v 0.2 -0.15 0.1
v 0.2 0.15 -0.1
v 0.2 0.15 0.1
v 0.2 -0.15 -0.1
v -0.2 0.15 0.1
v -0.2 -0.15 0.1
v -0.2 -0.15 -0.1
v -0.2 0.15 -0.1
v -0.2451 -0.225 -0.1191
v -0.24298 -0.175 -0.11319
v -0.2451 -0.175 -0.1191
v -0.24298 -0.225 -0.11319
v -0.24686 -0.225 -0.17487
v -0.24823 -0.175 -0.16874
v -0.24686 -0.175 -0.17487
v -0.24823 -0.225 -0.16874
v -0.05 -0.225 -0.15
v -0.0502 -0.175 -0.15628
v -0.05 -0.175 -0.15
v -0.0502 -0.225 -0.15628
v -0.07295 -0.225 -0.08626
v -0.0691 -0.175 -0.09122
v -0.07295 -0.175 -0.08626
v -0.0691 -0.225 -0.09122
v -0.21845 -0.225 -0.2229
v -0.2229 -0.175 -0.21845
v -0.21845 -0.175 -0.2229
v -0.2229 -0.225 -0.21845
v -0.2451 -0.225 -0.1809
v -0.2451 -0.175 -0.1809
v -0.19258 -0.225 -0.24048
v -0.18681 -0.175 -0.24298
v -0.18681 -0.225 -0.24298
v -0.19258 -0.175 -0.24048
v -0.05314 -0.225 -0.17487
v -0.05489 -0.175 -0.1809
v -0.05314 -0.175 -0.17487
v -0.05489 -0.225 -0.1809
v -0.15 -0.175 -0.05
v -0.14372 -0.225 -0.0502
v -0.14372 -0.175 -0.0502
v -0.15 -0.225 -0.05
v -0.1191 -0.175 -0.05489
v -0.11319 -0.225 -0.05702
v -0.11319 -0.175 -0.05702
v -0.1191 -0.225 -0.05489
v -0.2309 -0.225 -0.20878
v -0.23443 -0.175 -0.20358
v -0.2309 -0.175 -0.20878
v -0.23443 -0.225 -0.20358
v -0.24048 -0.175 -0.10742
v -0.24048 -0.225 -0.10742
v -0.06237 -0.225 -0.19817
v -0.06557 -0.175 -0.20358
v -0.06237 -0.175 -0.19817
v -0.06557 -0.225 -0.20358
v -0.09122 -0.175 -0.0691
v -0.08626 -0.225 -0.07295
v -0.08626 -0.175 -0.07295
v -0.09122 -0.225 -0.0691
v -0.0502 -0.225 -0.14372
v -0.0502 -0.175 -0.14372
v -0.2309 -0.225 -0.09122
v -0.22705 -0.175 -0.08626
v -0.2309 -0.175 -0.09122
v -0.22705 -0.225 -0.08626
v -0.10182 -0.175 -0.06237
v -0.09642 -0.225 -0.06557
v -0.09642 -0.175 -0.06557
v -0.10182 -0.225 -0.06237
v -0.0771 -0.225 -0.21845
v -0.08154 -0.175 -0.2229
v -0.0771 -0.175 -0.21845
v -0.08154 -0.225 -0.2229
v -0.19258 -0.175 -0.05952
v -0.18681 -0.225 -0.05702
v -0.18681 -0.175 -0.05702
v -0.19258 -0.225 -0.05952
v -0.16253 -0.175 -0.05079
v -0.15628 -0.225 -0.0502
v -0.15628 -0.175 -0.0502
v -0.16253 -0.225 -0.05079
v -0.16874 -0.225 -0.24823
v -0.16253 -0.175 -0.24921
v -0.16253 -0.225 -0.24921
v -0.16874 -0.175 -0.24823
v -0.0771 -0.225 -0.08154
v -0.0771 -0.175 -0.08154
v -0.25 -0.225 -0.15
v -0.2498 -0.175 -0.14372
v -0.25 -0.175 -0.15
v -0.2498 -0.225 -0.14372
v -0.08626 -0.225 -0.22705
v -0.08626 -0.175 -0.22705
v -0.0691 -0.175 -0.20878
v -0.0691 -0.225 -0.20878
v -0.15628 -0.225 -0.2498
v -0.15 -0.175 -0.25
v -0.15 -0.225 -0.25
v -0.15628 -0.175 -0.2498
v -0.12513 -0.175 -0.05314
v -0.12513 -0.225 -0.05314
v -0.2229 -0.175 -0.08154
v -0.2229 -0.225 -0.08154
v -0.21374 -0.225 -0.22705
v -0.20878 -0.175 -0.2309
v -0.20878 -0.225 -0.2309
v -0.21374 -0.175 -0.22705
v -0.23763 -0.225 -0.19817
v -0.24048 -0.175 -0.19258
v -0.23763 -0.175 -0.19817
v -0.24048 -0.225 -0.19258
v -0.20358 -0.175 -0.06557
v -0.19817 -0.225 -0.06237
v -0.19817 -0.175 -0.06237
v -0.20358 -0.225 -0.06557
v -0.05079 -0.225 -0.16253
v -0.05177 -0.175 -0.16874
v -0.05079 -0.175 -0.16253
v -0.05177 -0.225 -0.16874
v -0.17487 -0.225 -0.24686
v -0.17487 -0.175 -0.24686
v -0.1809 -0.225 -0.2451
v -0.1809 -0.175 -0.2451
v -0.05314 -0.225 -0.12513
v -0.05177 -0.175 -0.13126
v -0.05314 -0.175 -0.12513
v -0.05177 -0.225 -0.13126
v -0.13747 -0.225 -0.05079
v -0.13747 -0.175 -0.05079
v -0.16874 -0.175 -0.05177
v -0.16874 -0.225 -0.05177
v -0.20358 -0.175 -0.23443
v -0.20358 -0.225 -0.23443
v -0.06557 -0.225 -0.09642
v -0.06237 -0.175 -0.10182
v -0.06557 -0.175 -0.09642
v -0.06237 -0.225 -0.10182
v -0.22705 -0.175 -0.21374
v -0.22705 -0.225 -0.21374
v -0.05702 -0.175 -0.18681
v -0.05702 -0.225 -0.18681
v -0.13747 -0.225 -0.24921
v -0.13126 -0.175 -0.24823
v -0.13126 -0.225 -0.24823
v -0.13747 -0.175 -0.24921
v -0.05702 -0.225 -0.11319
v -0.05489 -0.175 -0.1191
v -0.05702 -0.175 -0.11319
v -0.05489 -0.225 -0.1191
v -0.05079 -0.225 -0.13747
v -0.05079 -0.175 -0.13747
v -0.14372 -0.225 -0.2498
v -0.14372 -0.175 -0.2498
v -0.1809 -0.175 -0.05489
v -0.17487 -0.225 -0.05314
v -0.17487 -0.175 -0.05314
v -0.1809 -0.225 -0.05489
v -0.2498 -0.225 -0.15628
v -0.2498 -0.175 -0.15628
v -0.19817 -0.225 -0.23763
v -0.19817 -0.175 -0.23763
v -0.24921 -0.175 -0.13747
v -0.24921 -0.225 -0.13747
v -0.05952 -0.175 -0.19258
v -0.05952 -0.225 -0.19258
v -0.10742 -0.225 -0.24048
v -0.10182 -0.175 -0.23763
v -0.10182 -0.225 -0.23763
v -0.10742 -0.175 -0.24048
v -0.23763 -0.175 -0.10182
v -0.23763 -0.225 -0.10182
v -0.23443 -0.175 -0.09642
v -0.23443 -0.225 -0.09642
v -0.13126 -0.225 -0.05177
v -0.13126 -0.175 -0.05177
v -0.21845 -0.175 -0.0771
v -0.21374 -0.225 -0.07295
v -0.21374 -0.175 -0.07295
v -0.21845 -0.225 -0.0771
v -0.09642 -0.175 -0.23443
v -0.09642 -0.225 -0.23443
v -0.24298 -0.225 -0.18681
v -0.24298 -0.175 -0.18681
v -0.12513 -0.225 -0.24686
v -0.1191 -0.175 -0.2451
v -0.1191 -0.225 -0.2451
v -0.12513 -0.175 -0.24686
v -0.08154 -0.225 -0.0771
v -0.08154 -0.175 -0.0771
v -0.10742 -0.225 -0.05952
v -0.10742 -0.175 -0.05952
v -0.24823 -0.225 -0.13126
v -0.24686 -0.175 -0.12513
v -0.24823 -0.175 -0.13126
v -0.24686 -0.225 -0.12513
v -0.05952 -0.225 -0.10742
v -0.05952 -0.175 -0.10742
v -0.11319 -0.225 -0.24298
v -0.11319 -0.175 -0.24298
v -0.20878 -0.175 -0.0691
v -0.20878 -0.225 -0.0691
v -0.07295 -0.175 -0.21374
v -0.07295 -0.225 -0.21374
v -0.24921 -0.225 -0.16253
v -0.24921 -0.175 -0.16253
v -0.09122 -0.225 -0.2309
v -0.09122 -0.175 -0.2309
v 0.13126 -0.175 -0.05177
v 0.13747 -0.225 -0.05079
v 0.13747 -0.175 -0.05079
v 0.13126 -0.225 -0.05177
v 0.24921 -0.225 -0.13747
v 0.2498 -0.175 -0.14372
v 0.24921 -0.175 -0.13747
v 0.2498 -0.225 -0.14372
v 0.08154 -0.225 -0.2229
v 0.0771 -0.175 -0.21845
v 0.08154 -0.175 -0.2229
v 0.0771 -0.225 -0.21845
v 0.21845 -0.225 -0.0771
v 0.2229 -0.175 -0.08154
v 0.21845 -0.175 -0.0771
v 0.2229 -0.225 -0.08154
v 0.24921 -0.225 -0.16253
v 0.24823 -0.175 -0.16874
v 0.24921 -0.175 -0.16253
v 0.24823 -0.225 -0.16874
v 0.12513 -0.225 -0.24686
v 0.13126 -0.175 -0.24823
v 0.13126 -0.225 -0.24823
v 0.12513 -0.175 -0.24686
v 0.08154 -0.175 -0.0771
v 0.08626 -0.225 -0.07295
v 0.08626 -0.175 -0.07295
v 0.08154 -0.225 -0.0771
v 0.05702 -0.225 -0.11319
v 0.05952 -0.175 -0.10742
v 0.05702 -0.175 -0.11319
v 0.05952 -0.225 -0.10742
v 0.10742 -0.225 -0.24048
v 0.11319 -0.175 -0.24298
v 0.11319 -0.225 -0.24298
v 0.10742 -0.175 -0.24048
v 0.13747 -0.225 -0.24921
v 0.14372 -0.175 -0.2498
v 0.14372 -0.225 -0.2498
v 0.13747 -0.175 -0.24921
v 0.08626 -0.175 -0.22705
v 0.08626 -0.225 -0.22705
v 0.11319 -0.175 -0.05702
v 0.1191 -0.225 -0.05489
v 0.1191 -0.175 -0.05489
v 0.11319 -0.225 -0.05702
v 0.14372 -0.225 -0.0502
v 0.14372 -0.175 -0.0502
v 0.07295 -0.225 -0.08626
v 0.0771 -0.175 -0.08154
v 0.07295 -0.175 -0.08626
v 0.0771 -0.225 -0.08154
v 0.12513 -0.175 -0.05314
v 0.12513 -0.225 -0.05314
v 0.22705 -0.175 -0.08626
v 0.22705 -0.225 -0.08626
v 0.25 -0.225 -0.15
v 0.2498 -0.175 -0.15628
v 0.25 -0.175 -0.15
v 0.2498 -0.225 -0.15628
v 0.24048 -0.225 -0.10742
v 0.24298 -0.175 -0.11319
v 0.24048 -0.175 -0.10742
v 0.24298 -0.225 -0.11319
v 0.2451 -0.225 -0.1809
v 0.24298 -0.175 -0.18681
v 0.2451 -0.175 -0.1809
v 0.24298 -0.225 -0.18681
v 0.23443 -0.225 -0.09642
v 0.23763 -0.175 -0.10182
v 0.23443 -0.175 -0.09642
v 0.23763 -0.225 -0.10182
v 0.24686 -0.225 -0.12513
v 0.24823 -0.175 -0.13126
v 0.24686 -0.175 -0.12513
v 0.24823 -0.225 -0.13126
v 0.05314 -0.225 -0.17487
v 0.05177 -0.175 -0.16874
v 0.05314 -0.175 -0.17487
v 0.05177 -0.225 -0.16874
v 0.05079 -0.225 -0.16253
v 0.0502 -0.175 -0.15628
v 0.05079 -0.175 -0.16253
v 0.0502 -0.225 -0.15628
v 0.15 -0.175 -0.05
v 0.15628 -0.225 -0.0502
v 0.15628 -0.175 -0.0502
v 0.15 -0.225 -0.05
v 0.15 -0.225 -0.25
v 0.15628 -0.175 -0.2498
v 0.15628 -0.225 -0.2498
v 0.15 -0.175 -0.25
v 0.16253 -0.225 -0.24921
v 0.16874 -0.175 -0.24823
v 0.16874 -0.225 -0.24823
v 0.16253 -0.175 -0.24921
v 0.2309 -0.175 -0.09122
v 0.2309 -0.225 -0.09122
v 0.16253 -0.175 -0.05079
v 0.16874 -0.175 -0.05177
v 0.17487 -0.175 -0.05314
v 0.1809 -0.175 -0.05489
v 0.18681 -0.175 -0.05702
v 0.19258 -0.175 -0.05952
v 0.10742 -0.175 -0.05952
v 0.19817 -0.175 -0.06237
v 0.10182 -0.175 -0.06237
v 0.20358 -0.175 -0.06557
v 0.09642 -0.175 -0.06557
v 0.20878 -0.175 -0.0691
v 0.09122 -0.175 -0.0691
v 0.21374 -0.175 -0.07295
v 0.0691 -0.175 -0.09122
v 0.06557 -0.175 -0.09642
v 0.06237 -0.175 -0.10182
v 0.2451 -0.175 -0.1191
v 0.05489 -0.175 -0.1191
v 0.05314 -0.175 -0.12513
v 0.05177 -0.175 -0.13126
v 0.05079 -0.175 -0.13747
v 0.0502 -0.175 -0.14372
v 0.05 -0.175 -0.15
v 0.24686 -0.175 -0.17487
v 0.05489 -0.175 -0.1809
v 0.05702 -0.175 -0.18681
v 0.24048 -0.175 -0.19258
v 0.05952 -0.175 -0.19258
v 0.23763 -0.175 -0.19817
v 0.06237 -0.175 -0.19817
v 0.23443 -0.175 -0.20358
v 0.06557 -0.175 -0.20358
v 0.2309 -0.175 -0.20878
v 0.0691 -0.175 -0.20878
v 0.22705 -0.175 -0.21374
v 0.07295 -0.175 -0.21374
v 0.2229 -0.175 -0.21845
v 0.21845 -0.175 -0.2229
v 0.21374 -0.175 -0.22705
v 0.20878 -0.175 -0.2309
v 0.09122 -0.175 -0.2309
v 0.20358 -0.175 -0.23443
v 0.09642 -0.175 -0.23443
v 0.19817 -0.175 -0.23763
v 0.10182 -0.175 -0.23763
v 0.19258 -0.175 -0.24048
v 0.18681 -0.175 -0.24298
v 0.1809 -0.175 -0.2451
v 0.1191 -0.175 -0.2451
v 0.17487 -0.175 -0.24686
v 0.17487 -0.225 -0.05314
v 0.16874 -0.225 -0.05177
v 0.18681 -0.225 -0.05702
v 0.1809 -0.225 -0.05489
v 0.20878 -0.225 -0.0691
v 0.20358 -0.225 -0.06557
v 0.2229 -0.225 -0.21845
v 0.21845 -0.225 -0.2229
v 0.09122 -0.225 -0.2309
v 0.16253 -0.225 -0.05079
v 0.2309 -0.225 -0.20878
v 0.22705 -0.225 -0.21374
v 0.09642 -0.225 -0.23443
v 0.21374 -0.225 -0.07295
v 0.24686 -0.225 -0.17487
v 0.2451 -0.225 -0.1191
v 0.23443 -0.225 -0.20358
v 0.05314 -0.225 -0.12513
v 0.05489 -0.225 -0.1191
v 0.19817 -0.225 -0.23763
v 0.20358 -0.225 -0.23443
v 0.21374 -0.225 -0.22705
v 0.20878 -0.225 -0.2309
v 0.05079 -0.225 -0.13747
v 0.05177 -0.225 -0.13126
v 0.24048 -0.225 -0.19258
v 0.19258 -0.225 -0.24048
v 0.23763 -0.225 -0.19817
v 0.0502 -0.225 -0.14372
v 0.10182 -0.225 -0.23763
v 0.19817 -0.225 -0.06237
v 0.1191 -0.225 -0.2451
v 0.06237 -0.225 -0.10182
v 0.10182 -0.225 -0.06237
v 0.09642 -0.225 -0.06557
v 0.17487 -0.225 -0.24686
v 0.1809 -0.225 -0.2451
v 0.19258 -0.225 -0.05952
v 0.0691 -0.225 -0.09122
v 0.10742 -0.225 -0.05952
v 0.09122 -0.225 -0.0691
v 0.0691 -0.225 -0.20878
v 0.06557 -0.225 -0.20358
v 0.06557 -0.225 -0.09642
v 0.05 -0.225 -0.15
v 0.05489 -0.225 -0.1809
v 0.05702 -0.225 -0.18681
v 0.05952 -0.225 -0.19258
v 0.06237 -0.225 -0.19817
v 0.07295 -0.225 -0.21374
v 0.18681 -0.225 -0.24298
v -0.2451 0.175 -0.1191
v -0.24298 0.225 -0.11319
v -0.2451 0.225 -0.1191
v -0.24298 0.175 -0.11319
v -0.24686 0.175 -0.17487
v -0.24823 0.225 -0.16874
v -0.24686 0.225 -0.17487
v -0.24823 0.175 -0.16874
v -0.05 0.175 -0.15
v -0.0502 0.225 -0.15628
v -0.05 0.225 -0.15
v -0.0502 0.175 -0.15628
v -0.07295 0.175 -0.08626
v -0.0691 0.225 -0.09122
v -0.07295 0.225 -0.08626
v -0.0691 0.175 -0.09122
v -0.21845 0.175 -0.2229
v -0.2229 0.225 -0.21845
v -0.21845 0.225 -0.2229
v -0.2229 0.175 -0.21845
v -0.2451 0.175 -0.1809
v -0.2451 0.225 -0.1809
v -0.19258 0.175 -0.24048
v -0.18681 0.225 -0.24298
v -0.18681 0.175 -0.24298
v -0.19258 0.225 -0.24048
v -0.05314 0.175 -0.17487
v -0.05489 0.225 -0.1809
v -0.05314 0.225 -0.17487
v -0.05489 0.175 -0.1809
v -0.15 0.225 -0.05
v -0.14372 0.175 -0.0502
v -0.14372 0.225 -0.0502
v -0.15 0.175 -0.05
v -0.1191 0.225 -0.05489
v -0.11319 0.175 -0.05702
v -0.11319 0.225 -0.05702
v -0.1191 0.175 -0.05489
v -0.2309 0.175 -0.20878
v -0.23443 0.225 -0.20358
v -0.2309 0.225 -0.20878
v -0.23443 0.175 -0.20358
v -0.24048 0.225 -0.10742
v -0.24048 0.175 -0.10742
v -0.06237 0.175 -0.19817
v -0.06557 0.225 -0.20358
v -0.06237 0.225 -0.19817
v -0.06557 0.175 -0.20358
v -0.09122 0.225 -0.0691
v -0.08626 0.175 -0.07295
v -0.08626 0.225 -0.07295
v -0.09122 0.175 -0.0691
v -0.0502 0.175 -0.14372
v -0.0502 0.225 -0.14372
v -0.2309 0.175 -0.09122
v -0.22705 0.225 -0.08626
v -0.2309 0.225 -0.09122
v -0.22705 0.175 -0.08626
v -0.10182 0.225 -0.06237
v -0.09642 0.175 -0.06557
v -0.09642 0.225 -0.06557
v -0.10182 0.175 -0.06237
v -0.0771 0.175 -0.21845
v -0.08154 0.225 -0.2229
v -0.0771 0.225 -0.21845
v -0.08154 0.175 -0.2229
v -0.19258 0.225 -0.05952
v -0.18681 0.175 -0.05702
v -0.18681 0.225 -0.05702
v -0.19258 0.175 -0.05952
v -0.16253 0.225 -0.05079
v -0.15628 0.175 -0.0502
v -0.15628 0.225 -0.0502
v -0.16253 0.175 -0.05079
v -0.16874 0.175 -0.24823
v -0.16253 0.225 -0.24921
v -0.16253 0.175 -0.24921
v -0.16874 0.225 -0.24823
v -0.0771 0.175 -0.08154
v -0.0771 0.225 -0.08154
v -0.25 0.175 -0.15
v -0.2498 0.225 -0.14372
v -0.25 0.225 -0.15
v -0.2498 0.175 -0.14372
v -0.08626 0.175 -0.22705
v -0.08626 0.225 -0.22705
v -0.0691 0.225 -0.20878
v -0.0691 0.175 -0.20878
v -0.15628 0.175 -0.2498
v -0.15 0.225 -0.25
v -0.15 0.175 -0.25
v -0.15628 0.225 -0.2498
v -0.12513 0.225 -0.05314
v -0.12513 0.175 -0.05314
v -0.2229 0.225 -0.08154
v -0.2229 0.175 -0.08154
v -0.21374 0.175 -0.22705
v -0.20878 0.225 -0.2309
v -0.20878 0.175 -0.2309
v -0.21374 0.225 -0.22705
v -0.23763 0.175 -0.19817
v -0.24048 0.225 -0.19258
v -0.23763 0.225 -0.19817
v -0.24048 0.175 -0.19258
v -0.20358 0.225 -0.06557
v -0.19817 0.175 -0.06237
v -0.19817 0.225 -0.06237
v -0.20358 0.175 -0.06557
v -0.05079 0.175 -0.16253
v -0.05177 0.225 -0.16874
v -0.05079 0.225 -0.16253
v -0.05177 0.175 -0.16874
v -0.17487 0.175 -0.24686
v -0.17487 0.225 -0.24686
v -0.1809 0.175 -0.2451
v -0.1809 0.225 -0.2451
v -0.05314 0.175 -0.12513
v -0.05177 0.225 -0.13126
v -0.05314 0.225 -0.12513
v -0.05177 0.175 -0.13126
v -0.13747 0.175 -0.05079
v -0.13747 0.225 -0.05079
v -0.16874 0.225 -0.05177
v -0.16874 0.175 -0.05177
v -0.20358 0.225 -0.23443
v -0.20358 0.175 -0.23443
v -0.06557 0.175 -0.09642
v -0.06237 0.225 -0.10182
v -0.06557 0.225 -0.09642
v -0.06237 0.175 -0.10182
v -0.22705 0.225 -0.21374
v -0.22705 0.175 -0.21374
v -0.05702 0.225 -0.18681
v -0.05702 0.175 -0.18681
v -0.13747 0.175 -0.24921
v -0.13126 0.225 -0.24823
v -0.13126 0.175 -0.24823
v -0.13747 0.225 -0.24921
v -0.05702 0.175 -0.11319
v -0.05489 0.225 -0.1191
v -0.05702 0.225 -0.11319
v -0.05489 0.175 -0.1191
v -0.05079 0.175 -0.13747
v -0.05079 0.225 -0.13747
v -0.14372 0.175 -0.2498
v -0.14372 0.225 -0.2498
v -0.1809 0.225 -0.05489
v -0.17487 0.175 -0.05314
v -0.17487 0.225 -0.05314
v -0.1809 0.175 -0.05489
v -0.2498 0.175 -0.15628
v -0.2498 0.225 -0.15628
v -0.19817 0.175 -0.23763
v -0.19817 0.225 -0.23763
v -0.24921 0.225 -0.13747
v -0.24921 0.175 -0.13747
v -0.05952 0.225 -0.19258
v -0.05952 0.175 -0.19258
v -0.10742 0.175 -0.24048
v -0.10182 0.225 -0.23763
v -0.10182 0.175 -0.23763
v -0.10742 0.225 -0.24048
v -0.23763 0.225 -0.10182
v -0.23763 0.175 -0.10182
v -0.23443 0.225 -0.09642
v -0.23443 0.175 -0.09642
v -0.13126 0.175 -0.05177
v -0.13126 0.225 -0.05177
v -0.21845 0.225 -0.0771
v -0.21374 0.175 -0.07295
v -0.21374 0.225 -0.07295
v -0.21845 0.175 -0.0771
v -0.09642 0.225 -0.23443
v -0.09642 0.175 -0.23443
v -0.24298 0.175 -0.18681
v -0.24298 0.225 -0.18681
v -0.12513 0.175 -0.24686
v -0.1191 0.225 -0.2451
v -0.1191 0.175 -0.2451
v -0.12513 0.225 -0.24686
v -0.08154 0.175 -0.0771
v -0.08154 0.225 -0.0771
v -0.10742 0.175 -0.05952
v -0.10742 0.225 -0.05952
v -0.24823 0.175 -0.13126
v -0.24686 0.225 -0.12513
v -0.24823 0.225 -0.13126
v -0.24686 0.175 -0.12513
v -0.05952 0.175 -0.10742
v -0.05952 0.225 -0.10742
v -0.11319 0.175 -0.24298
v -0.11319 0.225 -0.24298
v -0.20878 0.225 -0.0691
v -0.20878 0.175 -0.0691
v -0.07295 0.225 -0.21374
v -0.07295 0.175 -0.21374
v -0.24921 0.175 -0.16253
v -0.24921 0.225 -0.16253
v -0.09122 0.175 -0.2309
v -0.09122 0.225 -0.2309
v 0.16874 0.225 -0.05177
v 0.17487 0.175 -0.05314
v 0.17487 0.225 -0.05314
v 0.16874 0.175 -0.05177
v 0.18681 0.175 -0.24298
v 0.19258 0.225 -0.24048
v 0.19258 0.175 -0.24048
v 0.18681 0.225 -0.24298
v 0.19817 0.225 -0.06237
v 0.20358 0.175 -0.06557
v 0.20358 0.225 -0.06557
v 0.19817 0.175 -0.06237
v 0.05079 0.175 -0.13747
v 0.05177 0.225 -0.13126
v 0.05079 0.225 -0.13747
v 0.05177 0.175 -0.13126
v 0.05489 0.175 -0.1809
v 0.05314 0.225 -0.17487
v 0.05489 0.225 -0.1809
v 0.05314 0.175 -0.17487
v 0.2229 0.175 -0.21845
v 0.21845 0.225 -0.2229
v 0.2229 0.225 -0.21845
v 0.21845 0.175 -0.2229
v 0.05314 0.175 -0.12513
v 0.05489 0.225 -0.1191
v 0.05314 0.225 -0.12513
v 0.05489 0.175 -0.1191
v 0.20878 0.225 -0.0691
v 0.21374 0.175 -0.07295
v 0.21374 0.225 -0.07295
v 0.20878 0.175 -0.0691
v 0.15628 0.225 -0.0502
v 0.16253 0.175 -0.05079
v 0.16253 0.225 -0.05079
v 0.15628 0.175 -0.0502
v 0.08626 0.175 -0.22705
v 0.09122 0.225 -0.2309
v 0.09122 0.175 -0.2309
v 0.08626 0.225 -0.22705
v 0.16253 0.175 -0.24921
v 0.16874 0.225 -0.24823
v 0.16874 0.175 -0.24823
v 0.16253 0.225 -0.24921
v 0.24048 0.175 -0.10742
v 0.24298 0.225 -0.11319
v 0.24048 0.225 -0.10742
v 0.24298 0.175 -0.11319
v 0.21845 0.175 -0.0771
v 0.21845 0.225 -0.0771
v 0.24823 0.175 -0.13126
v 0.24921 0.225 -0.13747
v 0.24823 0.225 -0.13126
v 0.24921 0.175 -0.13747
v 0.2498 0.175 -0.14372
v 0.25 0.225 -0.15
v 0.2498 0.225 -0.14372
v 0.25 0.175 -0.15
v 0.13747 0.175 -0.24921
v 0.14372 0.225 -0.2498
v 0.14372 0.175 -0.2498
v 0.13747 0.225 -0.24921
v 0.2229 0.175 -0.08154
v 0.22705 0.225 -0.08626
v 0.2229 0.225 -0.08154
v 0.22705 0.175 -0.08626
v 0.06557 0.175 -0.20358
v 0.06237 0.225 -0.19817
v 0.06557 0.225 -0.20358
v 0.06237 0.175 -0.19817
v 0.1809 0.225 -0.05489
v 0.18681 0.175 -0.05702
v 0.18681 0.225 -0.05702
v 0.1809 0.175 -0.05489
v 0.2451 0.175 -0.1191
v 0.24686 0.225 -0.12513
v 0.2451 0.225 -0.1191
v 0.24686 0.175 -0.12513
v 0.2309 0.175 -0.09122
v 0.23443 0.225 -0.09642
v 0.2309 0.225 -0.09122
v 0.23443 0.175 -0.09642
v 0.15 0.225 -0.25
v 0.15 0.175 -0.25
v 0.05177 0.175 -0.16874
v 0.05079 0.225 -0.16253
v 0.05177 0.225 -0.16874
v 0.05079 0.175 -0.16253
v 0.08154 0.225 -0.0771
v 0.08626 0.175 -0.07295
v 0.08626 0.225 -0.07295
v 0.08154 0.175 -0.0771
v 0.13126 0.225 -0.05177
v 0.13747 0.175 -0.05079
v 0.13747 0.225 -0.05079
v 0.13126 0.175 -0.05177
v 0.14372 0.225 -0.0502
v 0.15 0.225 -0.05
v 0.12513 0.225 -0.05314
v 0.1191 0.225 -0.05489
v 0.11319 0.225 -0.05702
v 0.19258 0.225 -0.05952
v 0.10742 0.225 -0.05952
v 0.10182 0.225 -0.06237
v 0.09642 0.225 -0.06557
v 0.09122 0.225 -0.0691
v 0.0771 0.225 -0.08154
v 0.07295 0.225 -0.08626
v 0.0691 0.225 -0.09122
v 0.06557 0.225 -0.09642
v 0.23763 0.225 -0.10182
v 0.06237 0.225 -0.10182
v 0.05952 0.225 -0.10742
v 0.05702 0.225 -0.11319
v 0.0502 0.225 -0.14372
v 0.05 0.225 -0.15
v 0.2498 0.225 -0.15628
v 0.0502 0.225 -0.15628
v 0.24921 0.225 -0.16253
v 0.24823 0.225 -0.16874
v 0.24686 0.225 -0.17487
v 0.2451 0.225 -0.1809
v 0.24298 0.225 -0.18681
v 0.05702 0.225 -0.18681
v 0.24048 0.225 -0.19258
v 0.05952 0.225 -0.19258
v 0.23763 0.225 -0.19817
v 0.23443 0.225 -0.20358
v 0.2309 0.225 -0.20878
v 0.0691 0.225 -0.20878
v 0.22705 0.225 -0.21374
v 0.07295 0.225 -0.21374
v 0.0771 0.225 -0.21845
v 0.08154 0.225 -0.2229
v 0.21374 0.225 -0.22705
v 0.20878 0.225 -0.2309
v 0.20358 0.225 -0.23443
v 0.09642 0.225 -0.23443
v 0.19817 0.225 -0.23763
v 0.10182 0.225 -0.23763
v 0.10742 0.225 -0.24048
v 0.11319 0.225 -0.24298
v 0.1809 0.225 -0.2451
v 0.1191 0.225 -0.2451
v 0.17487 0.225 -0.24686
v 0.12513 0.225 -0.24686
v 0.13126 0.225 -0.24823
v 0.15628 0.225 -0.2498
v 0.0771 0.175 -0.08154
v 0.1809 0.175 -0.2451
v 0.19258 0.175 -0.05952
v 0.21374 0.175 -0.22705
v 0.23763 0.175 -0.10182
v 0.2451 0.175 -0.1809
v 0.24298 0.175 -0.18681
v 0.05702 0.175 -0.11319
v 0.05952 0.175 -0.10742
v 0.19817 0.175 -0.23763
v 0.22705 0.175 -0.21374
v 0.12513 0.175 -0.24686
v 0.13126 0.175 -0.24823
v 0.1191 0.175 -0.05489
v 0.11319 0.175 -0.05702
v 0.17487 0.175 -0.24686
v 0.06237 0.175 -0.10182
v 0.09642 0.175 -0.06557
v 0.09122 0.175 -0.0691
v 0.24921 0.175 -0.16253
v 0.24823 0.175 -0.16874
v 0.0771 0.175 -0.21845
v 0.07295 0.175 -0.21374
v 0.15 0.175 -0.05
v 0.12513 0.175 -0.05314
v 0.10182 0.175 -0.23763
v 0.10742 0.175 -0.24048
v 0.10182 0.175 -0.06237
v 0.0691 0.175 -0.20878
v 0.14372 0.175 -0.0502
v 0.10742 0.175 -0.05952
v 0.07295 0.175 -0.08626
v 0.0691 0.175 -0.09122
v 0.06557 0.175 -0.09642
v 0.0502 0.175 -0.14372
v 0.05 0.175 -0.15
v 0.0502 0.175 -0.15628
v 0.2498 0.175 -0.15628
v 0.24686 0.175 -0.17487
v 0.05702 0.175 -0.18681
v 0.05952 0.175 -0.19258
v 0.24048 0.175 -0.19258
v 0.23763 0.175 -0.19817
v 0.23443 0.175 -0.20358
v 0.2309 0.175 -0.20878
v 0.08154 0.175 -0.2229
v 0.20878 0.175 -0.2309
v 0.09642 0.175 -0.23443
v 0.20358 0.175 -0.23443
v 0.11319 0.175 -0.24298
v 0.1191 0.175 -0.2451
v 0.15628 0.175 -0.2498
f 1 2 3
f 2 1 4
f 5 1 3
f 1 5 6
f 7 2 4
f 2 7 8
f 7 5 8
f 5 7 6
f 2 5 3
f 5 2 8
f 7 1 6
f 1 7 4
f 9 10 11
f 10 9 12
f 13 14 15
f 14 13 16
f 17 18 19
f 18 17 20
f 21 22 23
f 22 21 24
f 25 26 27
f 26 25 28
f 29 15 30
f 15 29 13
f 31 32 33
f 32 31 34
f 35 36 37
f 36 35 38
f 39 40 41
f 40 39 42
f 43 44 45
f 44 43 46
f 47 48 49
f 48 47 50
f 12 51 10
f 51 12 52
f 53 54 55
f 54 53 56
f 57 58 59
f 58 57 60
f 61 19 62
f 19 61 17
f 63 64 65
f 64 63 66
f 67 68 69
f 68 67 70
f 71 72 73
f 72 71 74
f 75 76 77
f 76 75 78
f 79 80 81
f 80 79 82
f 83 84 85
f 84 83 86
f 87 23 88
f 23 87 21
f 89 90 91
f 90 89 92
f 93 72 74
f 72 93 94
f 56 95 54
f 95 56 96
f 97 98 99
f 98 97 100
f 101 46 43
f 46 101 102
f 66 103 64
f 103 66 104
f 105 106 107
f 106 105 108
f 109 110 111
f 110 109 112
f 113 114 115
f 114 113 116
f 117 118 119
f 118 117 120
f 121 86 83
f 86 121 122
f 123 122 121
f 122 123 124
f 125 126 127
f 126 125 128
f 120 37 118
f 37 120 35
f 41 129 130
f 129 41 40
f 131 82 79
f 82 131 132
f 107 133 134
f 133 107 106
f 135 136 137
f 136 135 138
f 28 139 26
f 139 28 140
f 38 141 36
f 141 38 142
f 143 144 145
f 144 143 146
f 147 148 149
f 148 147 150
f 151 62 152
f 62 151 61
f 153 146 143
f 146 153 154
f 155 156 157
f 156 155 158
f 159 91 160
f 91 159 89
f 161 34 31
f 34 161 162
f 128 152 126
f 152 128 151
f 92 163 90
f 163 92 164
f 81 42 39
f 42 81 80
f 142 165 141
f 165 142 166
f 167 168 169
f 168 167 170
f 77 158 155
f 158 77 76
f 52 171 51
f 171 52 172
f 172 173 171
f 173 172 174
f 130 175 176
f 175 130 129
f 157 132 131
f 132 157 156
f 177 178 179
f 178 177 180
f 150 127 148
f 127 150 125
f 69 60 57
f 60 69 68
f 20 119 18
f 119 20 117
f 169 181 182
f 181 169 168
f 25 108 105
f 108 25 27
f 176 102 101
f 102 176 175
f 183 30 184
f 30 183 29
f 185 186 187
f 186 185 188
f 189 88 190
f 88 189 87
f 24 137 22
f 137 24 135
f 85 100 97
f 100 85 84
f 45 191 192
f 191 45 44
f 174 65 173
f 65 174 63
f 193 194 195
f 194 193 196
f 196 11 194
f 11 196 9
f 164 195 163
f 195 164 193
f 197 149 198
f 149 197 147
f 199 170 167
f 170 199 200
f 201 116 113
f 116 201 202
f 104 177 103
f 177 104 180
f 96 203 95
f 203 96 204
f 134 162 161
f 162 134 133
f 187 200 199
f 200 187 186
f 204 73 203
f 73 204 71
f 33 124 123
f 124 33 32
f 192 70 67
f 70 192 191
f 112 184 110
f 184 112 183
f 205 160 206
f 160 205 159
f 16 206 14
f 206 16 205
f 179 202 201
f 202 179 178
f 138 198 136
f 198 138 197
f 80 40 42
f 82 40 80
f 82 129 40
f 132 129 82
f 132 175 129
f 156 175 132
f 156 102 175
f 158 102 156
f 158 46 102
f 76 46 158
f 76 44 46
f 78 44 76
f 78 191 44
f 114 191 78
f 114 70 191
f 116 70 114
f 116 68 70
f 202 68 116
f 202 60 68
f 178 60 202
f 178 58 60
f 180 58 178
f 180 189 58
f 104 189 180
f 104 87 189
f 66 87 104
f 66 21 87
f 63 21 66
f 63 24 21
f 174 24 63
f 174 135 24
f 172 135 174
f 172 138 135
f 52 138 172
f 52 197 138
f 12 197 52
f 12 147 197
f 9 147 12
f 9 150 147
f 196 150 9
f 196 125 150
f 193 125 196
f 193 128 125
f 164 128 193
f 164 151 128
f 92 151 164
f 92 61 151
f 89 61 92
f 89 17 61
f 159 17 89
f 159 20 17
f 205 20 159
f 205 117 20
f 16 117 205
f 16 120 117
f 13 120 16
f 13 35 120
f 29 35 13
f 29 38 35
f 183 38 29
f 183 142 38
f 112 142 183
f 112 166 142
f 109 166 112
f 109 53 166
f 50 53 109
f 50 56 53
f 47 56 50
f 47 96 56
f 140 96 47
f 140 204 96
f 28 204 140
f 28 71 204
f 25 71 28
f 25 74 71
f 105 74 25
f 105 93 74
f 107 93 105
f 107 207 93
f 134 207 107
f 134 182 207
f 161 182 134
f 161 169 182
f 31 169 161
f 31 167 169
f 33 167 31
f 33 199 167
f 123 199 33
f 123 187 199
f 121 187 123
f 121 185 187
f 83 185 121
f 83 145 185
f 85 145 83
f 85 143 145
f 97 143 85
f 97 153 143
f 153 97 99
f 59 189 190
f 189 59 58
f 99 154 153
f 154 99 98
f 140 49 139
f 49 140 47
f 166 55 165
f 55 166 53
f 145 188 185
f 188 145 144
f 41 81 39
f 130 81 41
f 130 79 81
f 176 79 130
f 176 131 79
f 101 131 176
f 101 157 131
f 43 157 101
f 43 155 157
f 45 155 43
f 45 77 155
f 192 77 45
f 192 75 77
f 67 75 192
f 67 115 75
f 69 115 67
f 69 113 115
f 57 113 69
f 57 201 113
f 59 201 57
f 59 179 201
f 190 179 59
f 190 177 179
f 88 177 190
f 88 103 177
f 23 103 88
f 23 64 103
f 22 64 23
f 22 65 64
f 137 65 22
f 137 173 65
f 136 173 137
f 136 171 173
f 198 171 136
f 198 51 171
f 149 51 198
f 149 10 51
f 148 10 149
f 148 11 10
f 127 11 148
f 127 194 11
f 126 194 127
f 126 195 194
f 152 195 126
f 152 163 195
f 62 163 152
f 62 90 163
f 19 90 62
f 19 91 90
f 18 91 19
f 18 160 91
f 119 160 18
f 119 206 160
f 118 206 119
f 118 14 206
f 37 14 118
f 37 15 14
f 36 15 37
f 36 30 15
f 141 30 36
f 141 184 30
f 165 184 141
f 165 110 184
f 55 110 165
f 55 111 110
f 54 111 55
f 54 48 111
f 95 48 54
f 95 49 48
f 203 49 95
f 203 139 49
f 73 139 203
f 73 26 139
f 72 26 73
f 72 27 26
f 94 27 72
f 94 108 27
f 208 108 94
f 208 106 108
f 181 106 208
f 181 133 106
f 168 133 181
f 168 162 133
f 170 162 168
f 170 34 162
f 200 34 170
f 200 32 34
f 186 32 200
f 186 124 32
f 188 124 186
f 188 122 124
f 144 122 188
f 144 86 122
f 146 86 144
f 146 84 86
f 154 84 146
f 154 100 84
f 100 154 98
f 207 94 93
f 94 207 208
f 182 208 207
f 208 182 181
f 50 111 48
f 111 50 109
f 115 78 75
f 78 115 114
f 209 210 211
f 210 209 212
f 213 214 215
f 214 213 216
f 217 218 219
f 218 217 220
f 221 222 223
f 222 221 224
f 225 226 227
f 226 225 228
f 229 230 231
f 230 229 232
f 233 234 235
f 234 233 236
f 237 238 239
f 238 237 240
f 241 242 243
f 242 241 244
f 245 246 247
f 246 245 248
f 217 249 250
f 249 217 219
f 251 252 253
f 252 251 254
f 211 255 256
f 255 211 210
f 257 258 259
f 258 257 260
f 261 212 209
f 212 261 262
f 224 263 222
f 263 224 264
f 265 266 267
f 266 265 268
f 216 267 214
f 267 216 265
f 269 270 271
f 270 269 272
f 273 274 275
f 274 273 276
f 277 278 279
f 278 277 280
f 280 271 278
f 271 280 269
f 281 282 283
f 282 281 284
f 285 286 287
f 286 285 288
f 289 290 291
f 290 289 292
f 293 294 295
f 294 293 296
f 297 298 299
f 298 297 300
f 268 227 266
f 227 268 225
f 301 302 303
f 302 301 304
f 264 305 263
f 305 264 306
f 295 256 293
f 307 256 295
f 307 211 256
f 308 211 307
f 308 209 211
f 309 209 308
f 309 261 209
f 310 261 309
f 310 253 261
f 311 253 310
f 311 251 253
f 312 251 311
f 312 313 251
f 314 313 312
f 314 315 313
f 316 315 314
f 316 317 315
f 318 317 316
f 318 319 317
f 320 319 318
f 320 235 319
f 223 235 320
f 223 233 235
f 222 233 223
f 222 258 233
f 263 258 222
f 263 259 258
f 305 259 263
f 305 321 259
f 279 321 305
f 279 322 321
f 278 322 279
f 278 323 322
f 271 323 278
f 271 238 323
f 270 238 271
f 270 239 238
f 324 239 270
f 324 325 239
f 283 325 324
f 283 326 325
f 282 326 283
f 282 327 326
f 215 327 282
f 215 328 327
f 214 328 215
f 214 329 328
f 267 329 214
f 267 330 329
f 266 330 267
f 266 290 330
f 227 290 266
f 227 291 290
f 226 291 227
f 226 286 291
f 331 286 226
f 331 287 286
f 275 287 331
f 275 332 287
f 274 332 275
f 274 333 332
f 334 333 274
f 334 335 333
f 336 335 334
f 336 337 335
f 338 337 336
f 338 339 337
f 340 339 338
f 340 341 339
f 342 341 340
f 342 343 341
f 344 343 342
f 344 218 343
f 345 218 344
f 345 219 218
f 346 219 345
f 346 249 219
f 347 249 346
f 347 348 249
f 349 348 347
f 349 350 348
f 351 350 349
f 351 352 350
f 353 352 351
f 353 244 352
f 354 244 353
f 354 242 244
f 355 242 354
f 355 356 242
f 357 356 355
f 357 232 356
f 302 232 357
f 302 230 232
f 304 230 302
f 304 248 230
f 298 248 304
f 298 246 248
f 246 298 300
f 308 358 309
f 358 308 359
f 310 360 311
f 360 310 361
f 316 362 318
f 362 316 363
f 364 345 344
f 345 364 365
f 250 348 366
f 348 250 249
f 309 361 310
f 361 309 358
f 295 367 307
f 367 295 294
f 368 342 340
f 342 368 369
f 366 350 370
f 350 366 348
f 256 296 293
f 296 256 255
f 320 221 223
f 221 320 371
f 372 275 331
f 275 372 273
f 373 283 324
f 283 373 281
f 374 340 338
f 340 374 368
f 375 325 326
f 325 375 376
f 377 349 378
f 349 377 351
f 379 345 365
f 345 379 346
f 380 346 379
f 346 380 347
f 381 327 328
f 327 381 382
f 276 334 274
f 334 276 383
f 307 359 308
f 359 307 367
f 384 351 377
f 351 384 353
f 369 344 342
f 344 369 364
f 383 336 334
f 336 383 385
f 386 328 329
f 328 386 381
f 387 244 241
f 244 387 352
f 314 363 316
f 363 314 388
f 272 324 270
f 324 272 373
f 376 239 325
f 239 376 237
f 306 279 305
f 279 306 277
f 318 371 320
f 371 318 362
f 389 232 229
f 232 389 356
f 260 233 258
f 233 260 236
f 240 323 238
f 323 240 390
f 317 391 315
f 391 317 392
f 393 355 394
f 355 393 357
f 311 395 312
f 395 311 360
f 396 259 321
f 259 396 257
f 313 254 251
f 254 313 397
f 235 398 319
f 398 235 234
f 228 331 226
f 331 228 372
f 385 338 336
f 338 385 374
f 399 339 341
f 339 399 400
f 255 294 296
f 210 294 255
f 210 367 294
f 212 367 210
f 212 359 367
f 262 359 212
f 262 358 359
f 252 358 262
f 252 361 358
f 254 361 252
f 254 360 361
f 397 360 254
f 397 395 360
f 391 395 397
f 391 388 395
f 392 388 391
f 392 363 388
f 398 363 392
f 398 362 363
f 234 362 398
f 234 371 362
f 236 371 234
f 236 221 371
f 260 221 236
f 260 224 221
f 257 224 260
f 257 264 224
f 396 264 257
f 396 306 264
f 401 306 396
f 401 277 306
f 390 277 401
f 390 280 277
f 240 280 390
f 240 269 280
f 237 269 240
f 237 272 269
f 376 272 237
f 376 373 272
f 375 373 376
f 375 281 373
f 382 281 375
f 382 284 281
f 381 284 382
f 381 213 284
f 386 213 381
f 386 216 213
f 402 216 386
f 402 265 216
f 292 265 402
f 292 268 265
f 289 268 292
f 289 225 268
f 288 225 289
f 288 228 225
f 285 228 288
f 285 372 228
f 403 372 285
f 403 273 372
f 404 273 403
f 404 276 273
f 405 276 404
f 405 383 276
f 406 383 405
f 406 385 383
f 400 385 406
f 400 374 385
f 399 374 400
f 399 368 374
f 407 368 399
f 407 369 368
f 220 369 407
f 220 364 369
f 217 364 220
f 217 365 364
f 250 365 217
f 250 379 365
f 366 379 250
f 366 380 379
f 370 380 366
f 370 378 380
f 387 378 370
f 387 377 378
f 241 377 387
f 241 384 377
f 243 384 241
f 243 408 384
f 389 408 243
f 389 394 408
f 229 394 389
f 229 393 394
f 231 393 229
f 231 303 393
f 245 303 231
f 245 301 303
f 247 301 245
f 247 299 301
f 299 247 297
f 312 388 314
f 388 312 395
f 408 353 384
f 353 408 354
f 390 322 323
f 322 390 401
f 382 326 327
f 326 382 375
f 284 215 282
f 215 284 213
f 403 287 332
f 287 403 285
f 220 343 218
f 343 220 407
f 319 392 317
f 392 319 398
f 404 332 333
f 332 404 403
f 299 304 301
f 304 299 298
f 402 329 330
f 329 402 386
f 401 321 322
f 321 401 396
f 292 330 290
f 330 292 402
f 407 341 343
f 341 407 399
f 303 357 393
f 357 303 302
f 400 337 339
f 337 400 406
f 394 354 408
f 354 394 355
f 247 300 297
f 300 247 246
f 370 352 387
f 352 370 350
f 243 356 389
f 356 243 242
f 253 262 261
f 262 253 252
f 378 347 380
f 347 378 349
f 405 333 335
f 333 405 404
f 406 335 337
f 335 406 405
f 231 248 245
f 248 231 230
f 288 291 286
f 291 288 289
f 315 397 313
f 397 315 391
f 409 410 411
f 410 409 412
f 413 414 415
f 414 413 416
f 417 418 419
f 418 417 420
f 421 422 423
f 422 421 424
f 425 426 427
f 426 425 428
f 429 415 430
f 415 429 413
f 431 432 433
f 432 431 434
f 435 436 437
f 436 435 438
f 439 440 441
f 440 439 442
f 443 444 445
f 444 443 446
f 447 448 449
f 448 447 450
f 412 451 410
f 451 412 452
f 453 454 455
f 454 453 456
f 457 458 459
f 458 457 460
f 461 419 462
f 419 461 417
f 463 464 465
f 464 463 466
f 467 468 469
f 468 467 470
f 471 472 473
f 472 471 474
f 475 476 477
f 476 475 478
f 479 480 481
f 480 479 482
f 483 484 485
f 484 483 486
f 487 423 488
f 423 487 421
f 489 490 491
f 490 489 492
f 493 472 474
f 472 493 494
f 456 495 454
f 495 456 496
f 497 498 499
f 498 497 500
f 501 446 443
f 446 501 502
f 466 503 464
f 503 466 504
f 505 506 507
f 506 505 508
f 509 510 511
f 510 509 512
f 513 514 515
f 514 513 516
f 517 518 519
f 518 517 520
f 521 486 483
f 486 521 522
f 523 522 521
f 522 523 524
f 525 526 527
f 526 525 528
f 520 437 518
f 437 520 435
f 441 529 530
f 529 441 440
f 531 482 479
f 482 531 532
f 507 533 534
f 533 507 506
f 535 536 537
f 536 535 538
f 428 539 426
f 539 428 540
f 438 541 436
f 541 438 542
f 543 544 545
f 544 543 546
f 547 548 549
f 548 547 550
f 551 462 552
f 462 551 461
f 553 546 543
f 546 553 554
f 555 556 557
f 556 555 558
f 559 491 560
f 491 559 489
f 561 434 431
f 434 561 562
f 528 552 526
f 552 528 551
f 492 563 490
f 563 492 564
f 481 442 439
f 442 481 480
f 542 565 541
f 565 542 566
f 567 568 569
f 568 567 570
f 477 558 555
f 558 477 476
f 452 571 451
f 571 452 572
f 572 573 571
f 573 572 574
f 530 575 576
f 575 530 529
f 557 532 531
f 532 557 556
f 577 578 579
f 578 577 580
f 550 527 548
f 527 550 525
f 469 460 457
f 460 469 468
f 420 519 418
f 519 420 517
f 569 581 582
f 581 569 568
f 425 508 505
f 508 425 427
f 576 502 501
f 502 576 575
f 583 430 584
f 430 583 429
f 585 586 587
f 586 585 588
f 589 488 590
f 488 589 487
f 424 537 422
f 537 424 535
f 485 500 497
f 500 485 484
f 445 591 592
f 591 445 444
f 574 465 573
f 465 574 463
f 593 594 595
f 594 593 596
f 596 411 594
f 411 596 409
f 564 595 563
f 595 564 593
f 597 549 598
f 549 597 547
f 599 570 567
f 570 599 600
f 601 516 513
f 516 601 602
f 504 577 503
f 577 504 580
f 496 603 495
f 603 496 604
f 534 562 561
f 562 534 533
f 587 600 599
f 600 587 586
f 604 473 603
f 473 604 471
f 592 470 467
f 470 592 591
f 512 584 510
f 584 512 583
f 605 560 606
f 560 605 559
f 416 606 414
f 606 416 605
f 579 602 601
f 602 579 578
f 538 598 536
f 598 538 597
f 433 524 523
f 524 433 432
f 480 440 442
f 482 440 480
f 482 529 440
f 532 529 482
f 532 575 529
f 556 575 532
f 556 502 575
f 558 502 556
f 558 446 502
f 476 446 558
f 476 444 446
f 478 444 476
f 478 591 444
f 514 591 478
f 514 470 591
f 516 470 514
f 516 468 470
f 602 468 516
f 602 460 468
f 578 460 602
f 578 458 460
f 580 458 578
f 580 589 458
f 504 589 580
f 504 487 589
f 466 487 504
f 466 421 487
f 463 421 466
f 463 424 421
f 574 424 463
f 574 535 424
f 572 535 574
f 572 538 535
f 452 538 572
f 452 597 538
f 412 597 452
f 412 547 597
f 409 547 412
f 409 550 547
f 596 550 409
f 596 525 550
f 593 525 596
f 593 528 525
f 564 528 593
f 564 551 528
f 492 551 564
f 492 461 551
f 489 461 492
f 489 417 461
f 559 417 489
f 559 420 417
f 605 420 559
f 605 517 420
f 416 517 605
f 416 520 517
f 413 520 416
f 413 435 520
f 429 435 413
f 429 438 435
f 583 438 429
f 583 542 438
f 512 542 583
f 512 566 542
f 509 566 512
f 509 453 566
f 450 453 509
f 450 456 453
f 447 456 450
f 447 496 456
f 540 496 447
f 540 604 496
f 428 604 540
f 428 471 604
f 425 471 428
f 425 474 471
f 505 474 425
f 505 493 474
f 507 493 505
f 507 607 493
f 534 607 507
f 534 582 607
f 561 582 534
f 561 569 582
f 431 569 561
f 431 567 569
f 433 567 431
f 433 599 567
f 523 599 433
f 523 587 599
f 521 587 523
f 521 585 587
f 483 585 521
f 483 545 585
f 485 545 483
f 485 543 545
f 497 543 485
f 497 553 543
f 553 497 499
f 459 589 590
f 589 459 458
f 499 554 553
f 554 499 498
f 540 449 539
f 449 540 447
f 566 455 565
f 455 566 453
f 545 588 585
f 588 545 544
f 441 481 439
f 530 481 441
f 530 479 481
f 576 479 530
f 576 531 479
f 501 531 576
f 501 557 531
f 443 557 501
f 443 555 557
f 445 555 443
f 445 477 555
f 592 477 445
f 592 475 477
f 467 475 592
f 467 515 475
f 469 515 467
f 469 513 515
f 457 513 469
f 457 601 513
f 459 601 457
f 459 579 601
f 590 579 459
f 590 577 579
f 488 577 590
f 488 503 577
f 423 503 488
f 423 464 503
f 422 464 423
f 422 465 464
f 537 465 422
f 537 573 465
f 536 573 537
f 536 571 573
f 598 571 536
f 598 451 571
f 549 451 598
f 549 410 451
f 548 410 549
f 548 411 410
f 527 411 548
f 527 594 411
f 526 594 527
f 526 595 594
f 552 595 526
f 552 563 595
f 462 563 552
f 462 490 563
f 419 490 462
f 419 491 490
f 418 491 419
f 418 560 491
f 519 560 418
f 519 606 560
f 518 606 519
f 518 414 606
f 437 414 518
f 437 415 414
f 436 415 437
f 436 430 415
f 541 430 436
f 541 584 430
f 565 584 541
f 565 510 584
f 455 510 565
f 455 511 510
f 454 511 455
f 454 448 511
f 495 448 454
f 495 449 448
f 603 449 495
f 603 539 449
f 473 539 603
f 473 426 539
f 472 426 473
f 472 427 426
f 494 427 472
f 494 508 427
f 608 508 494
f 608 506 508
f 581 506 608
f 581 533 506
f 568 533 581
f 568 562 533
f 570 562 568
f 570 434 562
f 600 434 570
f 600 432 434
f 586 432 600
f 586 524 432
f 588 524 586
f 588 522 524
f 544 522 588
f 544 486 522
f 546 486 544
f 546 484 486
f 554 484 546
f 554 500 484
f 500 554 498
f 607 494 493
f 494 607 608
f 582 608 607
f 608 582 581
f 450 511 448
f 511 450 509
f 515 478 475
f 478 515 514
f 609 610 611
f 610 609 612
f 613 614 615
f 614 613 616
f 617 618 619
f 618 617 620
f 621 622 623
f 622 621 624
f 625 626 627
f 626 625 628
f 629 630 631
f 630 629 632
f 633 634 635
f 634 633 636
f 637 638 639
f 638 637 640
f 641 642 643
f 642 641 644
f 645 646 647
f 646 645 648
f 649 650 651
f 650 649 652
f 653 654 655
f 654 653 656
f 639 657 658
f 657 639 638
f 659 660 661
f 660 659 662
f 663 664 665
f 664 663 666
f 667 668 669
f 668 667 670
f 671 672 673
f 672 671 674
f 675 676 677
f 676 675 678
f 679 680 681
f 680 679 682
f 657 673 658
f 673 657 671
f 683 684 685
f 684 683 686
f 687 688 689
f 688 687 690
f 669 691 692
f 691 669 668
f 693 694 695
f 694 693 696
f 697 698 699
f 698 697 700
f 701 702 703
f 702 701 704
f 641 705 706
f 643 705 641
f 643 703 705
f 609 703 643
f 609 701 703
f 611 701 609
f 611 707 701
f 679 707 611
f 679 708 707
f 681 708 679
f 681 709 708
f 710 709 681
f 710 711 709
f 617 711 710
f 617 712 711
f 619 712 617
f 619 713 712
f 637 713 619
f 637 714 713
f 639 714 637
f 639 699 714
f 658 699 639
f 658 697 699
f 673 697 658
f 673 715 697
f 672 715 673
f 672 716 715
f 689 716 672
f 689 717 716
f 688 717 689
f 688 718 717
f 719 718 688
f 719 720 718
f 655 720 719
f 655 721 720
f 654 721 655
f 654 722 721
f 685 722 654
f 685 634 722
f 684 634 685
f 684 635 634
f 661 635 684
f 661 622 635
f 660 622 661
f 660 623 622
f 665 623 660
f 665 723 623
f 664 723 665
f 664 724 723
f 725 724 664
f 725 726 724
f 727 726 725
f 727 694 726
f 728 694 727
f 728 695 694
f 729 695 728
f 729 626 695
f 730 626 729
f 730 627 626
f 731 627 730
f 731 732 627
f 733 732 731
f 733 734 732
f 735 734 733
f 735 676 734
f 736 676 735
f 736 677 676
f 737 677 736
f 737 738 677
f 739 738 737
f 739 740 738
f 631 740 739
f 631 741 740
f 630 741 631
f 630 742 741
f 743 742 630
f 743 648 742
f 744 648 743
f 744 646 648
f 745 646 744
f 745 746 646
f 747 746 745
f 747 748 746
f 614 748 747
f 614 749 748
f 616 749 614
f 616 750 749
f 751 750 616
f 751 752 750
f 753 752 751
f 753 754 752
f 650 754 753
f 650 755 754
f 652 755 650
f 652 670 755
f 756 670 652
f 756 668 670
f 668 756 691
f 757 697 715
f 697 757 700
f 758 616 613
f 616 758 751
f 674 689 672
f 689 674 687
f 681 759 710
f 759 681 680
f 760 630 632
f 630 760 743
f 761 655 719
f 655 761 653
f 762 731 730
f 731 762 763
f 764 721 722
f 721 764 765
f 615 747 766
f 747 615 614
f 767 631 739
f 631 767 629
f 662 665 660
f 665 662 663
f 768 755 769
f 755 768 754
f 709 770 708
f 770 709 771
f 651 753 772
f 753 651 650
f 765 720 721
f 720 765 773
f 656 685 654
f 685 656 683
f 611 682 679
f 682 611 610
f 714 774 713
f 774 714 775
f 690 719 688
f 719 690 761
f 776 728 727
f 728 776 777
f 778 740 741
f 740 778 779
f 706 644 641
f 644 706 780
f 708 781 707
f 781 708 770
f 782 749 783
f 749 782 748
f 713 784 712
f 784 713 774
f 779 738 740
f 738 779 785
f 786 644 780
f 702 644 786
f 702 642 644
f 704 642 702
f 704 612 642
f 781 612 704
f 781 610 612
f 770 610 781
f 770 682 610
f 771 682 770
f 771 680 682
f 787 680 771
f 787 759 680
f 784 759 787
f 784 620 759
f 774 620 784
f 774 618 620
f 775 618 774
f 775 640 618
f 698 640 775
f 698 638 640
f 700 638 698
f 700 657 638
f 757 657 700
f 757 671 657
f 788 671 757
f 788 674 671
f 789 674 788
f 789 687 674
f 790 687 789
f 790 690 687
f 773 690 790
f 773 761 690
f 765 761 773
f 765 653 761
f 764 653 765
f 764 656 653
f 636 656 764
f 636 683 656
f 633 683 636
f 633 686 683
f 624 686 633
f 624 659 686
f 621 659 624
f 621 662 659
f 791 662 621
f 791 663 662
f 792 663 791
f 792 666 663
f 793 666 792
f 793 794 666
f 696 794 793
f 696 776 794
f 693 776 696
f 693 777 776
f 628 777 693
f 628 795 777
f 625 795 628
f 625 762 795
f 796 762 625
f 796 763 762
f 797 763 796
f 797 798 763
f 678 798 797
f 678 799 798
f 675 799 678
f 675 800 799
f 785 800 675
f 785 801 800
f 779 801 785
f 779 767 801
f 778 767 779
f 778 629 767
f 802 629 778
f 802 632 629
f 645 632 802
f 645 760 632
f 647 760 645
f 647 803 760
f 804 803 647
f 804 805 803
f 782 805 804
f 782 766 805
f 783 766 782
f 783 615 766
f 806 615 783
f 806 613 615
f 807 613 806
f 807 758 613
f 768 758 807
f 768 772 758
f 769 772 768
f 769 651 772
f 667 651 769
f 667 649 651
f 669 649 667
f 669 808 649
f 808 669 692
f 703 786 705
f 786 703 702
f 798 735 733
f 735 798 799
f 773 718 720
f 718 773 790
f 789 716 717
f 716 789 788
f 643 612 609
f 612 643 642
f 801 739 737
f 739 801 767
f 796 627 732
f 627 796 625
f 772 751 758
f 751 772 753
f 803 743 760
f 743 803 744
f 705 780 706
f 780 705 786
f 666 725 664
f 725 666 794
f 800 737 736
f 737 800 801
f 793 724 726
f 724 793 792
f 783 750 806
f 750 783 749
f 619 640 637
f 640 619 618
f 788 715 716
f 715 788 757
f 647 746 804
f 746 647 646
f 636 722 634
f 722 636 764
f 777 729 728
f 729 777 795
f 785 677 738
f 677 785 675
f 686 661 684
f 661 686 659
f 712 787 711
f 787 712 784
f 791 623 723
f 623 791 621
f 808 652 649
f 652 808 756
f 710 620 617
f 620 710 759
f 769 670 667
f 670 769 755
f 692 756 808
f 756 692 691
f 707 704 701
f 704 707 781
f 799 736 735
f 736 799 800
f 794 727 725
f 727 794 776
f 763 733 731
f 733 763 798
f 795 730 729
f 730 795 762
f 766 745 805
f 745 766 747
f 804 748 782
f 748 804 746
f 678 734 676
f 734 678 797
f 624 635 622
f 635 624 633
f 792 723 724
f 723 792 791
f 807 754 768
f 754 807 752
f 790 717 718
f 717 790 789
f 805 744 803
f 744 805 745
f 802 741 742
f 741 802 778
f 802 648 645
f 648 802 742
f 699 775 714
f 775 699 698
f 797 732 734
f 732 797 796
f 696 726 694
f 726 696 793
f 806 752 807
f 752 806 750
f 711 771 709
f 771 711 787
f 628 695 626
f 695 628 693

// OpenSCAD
// Complex OpenSCAD test file
// Creates a robot-like structure

module wheel(radius=.10, width=.05) {
    cylinder(h=width, r=radius, center=true, $fn=100);
}

module robot_base() {
    // Main body
    cube([.40, .30, .20], center=true);
    
    // Wheels - rotated 90 degrees around X-axis to orient them properly for rolling
    translate([-.15, -.20, -.15]) rotate([90, 0, 0]) wheel();
    translate([.15, -.20, -.15]) rotate([90, 0, 0]) wheel();
    translate([-.15, .20, -.15]) rotate([90, 0, 0]) wheel();
    translate([.15, .20, -.15]) rotate([90, 0, 0]) wheel();
}

// Create the robot
robot_base();
